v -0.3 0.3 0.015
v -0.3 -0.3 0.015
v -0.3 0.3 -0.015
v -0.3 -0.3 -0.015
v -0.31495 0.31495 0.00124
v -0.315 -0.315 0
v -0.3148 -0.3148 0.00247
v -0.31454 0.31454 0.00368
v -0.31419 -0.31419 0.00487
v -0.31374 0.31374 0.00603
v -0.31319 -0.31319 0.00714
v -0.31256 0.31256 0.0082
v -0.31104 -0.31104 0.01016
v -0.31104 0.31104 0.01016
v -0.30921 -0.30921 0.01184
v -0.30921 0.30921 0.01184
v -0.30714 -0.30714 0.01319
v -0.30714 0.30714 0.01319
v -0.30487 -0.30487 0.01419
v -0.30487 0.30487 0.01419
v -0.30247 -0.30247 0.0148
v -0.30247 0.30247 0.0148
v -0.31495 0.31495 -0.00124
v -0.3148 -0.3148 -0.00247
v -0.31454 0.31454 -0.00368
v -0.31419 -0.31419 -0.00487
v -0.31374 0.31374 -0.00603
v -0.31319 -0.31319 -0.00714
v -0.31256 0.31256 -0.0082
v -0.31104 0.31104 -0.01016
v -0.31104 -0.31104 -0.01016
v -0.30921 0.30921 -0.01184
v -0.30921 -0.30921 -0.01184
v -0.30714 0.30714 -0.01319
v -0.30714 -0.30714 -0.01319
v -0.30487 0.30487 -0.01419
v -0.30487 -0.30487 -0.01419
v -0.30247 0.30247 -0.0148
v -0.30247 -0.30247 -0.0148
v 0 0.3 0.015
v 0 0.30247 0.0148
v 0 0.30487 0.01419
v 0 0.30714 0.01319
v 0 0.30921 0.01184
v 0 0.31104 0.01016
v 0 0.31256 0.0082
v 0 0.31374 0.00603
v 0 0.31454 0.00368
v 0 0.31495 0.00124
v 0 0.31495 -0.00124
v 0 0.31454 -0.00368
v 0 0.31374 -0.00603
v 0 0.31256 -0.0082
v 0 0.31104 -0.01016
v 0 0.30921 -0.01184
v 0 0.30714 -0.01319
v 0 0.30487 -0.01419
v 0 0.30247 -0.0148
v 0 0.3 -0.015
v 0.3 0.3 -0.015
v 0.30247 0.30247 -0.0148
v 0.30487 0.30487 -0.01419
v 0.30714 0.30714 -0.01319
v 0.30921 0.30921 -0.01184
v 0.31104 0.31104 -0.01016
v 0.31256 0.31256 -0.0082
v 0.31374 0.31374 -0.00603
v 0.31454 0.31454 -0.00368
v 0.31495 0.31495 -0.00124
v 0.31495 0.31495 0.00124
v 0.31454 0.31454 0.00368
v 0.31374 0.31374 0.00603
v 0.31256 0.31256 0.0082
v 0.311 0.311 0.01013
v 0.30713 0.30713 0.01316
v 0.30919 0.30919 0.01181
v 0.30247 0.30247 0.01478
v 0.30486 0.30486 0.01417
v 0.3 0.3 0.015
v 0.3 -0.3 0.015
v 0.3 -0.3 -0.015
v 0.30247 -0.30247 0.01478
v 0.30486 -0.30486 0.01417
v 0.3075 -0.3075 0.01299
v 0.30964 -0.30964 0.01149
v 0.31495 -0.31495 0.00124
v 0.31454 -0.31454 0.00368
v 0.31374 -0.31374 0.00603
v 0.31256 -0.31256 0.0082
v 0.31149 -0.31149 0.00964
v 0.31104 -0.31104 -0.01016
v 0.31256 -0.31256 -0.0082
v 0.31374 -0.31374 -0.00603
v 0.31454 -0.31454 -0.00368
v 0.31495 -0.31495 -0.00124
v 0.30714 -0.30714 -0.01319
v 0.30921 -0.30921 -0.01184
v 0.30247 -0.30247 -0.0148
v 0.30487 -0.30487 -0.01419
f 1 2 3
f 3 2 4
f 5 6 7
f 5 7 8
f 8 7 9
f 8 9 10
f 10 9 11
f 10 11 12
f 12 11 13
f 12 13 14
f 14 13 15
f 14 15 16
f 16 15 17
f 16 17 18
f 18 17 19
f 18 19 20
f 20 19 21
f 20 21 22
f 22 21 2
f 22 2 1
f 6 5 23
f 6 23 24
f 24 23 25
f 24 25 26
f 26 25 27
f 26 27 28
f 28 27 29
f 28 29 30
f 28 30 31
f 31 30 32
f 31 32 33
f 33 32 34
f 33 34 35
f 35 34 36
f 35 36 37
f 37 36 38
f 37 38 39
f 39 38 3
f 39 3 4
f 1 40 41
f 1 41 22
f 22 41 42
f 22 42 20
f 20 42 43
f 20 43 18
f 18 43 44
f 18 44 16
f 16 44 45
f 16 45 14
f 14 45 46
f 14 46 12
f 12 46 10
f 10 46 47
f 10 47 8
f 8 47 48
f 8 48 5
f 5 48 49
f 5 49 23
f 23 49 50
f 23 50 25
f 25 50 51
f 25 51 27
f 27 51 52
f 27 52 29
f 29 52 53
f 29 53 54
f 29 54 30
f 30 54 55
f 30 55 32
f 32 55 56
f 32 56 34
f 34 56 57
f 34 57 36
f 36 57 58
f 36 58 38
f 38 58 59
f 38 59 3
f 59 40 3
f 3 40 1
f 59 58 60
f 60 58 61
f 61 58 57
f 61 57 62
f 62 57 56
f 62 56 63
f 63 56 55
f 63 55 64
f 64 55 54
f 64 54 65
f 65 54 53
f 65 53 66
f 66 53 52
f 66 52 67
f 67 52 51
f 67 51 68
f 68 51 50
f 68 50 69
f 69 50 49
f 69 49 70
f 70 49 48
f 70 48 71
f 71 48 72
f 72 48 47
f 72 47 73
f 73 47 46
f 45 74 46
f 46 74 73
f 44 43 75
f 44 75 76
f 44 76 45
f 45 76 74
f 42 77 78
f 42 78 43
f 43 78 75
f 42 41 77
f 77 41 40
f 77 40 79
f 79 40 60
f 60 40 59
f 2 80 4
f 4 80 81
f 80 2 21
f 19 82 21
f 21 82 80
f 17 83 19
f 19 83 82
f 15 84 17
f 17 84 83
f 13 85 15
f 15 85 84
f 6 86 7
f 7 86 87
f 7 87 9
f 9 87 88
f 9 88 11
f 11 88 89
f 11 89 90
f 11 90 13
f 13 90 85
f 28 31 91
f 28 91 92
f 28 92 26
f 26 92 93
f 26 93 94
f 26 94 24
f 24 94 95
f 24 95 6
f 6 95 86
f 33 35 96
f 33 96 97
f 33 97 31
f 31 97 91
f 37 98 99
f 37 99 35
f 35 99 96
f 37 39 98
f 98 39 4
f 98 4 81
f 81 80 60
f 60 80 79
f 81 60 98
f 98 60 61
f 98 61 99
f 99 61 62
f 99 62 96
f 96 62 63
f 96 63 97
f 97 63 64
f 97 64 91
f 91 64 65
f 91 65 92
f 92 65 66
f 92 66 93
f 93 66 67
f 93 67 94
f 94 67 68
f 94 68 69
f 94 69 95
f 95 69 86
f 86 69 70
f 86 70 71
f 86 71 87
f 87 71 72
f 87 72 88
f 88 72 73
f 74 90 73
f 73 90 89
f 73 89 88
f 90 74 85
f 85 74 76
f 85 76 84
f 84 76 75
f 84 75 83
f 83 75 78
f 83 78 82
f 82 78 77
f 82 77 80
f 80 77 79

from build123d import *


with BuildPart() as part:
    # Sweep2: sweep along a path in Sketch2
    with BuildLine(Plane.XY) as sweep2_path:
        Line((-0.3, -0.3), (0.3, -0.3))
        Line((0.3, -0.3), (0.3, 0.3))
        Line((0.3, 0.3), (-0.3, 0.3))
        Line((-0.3, 0.3), (-0.3, -0.3))
    # Sketch1 → Sweep2 (sweep)
    with BuildSketch(Plane(origin=(0, 0, 0), x_dir=(0, 0, -1), z_dir=(1, 0, 0))):
        with BuildLine():
            Line((-0.015, 0.3), (0.015, 0.3))
            ThreePointArc((0.015, 0.3), (0, 0.315), (-0.015, 0.3))
        make_face()
    sweep(path=sweep2_path.line, transition=Transition.RIGHT)


solid = part.part
